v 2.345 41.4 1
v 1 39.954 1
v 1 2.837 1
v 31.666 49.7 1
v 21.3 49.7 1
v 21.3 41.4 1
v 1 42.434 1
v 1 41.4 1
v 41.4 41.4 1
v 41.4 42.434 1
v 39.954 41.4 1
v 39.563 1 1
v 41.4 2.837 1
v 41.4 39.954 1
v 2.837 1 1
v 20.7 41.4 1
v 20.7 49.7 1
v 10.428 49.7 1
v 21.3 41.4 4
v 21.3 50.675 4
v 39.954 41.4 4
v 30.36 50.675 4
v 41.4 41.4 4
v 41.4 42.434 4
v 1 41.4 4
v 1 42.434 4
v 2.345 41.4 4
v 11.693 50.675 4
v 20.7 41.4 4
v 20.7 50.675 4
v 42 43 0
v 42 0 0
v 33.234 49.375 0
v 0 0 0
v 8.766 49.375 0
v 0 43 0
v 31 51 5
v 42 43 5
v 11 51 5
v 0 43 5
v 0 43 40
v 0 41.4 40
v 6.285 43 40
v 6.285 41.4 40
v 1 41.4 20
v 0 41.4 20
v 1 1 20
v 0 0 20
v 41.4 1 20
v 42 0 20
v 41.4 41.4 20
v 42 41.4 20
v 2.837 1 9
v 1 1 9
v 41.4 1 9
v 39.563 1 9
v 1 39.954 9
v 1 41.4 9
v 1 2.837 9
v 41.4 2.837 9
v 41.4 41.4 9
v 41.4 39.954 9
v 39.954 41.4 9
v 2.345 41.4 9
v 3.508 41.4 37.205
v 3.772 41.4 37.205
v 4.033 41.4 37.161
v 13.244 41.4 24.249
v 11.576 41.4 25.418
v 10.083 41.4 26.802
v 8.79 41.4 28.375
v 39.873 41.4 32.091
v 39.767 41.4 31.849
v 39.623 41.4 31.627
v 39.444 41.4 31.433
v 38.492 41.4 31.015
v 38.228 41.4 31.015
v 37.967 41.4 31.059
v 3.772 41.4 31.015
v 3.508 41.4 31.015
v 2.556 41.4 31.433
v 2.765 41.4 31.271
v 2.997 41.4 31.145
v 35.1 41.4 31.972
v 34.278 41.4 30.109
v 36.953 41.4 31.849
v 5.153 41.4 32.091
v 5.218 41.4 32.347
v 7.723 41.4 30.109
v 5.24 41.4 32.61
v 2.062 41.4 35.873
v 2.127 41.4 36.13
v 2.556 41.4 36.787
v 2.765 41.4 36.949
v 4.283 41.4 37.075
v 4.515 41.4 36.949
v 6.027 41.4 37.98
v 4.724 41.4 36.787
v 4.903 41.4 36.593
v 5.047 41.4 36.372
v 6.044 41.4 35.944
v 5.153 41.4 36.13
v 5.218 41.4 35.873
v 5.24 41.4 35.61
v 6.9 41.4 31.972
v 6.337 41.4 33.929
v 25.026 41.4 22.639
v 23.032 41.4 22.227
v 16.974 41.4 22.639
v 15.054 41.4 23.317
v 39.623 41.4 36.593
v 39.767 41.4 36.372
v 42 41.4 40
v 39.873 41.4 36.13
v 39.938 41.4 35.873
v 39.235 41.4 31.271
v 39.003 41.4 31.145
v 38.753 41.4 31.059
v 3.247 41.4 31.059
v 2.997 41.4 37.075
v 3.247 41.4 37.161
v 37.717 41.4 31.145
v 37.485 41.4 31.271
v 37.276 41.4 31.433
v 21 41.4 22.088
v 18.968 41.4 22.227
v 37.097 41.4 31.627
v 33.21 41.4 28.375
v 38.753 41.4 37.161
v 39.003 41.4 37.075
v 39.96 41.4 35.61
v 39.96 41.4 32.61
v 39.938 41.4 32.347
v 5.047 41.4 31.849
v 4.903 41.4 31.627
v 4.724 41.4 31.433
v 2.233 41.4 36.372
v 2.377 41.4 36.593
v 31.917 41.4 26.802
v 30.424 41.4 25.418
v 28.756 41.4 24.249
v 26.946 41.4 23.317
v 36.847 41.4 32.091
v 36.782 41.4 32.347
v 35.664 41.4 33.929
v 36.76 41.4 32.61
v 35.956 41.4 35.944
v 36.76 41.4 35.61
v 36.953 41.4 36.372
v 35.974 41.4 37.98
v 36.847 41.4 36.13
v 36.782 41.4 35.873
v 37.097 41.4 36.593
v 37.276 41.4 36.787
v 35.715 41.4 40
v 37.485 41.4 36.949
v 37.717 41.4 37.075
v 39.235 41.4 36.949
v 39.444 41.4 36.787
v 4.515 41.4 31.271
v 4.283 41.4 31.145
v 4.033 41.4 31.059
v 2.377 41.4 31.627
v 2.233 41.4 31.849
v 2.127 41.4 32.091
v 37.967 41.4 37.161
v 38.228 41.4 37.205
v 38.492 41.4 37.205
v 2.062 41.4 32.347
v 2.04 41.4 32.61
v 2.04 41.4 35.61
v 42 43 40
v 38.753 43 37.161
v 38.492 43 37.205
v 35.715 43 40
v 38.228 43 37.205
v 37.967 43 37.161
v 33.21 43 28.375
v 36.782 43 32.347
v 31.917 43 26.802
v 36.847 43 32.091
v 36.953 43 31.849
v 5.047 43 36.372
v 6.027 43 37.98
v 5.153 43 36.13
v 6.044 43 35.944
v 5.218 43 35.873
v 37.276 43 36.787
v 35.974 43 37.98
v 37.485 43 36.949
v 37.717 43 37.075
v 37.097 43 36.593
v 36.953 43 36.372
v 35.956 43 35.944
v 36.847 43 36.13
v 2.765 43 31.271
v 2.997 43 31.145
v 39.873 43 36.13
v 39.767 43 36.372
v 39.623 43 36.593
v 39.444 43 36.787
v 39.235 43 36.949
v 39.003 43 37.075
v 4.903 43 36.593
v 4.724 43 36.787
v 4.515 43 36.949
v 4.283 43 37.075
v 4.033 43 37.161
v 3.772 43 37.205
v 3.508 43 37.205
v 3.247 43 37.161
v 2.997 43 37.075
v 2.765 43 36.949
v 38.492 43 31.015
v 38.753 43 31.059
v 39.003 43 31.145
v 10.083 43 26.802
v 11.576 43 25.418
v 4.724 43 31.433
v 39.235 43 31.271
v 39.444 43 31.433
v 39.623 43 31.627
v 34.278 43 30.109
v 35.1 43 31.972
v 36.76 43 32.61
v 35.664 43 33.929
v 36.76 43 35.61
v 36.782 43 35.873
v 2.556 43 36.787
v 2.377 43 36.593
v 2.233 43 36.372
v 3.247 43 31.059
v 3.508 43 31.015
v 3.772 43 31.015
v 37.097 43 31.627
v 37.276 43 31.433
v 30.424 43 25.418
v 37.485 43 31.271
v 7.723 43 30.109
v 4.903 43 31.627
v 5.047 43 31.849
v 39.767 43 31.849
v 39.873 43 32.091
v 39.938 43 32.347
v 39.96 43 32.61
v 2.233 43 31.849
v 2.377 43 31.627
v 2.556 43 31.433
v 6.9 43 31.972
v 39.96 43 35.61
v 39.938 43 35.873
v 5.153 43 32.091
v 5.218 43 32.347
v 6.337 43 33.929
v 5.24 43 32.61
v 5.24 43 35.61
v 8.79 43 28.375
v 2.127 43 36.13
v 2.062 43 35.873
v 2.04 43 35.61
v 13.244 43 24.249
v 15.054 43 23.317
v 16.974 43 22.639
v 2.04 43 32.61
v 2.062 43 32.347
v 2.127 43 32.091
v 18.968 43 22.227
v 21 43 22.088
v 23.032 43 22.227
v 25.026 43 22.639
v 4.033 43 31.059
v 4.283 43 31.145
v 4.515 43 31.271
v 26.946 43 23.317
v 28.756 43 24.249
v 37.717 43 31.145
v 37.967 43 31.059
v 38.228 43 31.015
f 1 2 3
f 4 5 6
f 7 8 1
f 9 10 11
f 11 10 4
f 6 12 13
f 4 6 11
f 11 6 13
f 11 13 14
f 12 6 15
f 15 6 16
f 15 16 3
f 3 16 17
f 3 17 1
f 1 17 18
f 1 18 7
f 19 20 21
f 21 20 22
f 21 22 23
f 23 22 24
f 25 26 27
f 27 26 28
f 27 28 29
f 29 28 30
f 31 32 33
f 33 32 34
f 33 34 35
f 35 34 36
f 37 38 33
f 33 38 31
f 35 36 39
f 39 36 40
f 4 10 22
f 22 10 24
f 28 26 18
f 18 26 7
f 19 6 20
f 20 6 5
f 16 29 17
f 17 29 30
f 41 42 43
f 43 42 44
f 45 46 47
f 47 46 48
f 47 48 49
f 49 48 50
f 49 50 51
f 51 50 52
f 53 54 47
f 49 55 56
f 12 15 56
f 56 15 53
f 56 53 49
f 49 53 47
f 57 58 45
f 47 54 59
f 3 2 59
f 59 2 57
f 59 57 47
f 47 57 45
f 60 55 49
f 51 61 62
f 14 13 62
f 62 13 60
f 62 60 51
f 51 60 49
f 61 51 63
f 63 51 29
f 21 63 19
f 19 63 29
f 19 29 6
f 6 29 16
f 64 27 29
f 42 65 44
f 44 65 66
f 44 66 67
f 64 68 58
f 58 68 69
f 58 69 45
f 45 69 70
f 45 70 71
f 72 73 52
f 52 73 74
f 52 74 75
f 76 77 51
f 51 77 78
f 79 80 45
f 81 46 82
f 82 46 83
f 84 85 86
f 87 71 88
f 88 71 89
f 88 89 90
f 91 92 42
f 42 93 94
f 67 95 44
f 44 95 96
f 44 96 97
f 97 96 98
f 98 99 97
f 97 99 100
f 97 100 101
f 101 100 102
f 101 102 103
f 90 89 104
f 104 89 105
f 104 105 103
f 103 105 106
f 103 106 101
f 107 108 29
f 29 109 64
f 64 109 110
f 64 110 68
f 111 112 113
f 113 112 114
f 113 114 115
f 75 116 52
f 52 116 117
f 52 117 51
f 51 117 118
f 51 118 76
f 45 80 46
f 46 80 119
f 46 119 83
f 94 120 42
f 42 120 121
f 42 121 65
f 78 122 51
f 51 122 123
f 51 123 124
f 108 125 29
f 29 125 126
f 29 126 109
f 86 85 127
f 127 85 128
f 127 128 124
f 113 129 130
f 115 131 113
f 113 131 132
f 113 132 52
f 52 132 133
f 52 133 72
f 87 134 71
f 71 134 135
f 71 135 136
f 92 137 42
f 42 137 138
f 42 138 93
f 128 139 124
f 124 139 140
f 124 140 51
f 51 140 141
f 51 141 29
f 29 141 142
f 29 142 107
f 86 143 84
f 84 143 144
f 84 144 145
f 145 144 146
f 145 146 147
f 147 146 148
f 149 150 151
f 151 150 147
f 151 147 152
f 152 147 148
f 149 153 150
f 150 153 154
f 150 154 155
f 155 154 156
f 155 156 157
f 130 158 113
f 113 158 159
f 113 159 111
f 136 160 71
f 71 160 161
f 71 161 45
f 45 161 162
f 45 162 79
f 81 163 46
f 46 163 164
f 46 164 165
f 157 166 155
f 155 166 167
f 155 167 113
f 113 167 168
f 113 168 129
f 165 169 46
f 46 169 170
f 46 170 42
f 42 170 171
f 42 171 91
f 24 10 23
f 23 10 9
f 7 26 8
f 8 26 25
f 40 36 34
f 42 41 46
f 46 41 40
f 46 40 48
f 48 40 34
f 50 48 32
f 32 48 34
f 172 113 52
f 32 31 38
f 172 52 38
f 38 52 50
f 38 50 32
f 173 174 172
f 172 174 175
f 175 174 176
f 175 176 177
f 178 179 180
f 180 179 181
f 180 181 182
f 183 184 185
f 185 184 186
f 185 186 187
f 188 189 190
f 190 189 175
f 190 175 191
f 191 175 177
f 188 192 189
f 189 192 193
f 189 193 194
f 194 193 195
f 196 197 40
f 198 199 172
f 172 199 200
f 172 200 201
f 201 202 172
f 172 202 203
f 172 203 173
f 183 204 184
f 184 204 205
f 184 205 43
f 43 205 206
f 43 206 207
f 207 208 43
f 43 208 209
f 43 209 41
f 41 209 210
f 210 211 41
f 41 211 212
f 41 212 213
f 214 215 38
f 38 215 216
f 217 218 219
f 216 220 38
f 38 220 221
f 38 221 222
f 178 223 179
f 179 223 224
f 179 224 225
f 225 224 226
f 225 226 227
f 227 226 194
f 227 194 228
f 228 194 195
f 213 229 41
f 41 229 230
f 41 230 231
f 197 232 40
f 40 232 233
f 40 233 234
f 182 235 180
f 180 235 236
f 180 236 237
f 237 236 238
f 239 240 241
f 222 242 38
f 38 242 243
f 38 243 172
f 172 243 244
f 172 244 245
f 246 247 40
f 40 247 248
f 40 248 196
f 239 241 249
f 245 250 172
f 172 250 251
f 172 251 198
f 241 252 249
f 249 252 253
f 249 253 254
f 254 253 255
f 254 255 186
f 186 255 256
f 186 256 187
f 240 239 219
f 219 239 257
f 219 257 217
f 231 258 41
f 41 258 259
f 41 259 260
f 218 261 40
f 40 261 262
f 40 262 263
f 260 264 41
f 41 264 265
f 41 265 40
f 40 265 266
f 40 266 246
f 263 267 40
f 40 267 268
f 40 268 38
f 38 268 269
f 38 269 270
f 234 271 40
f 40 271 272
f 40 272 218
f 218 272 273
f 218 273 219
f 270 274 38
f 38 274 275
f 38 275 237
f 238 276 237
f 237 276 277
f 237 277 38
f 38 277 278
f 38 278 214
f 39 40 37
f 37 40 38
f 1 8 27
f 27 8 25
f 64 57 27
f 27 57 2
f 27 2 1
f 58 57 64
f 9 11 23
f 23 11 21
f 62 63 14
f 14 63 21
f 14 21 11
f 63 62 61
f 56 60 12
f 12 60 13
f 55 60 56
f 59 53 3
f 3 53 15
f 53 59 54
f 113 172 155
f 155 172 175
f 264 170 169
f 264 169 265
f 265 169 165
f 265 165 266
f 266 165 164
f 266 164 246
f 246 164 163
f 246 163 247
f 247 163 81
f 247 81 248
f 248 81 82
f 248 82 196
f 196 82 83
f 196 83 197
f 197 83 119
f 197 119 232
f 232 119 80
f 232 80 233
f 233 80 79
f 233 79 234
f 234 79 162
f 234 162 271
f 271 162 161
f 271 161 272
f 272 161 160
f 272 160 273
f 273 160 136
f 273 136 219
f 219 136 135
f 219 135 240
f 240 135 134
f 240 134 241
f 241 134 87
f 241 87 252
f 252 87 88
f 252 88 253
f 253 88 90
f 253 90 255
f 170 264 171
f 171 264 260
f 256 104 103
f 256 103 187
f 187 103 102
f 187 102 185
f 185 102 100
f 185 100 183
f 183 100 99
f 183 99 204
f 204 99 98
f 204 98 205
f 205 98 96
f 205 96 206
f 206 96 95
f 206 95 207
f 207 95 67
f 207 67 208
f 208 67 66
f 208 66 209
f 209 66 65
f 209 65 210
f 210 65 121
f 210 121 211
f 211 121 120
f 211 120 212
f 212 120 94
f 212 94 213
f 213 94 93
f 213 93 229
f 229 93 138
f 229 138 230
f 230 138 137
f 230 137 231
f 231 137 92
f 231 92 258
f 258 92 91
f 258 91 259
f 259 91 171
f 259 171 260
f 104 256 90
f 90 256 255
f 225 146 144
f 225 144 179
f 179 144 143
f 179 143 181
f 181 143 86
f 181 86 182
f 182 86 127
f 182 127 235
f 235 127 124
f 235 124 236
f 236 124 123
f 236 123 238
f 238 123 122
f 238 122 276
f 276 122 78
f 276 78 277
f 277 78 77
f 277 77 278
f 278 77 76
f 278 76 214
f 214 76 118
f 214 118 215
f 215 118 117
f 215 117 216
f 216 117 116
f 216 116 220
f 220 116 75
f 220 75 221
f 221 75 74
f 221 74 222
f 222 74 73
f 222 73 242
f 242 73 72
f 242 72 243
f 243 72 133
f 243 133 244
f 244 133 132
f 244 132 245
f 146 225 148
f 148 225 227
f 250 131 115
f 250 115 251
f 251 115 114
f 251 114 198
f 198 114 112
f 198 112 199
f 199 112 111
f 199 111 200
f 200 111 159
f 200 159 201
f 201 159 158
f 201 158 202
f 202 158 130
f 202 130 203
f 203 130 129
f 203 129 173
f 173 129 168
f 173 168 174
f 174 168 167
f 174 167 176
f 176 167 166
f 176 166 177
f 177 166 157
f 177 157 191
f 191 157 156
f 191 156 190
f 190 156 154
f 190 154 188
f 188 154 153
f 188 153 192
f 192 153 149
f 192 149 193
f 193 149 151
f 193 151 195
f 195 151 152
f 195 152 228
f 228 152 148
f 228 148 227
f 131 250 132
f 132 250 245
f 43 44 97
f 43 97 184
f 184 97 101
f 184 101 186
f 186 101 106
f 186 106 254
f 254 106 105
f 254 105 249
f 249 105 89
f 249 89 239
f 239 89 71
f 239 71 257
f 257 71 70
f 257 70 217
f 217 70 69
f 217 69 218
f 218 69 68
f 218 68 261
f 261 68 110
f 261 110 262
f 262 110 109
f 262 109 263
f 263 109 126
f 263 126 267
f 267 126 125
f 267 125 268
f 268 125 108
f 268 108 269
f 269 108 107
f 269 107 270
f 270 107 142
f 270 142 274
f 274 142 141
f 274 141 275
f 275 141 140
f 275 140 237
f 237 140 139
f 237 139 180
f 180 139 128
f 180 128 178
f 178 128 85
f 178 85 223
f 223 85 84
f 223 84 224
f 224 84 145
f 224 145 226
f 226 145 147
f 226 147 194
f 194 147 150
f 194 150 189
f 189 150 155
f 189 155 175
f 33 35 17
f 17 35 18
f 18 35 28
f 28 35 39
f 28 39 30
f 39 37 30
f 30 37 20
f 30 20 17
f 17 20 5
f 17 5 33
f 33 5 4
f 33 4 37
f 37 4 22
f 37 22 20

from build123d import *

# Parameters (mm, degrees)
SKETCH_1_W               = 42
SKETCH_1_H               = 43
EXTRUDE_1_DEPTH          = 20
SKETCH_2_W               = 40.4
SKETCH_2_H               = 40.4
CUT_EXTRUDE_1_DEPTH      = 19
EXTRUDE_2_DEPTH          = 5
CUT_EXTRUDE_2_DEPTH      = 3
EXTRUDE_3_DEPTH          = 8
SKETCH_7_W               = 42
SKETCH_7_H               = 1.6
EXTRUDE_4_DEPTH          = 20
SKETCH_8_R               = 15
CUT_EXTRUDE_3_DEPTH      = 20
SKETCH_9_W               = 0.6
SKETCH_9_H               = 9.6
EXTRUDE_5_DEPTH          = 3
CUT_EXTRUDE_4_DEPTH      = 20
CUT_EXTRUDE_4_DEPTH_BACK = 20


with BuildPart() as part:
    # 草图1 → 凸台-拉伸1 (new body)
    with BuildSketch(Plane.XY):
        with Locations((21, 21.5)):
            Rectangle(SKETCH_1_W, SKETCH_1_H)
    extrude(amount=EXTRUDE_1_DEPTH)

    # 草图2 → 切除-拉伸1 (cut)
    with BuildSketch(Plane.XY.offset(20)):
        with Locations((21.2, 21.2)):
            Rectangle(SKETCH_2_W, SKETCH_2_H)
    extrude(amount=-CUT_EXTRUDE_1_DEPTH, mode=Mode.SUBTRACT)

    # 草图3 → 凸台-拉伸2 (add)
    with BuildSketch(Plane(origin=(0, 0, 0), x_dir=(-1, 0, 0), z_dir=(0, 0, -1))):
        Polygon((-42, 43), (0, 43), (-11, 51), (-31, 51), align=None)
    extrude(amount=-EXTRUDE_2_DEPTH)

    # 草图5 → 切除-拉伸2 (cut)
    with BuildSketch(Plane.XY.offset(1)):
        Polygon((1, 41.4), (1, 42.434468933), (13.156473194, 51.802822617), (28.849580276, 51.802822617), (41.4, 42.434468933), (41.4, 41.4), align=None)
    extrude(amount=CUT_EXTRUDE_2_DEPTH, mode=Mode.SUBTRACT)

    # 草图6 → 凸台-拉伸3 (add)
    with BuildSketch(Plane.XY.offset(1)):
        Polygon((1, 41.4), (1, 39.954103811), (2.344864369, 41.4), align=None)
        Polygon((41.4, 41.4), (41.4, 39.954103811), (39.954103811, 41.4), align=None)
        Polygon((41.4, 1), (41.4, 2.836916903), (39.563083097, 1), align=None)
        Polygon((1, 1), (1, 2.836916903), (2.836916903, 1), align=None)
    extrude(amount=EXTRUDE_3_DEPTH)

    # 草图7 → 凸台-拉伸4 (add)
    with BuildSketch(Plane.XY.offset(20)):
        with Locations((21, 42.2)):
            Rectangle(SKETCH_7_W, SKETCH_7_H)
    extrude(amount=EXTRUDE_4_DEPTH)

    # 草图8 → 切除-拉伸3 (cut)
    with BuildSketch(Plane.XZ.offset(-41.4)):
        with Locations((21, 37.088393363)):
            Circle(SKETCH_8_R)
        with BuildLine():
            Line((2.04, 32.61), (2.04, 35.61))
            ThreePointArc((2.04, 35.61), (3.64, 37.21), (5.24, 35.61))
            Line((5.24, 35.61), (5.24, 32.61))
            ThreePointArc((5.24, 32.61), (3.64, 31.01), (2.04, 32.61))
        make_face()
        with BuildLine():
            Line((39.96, 32.61), (39.96, 35.61))
            ThreePointArc((39.96, 35.61), (38.36, 37.21), (36.76, 35.61))
            Line((36.76, 35.61), (36.76, 32.61))
            ThreePointArc((36.76, 32.61), (38.36, 31.01), (39.96, 32.61))
        make_face()
    extrude(amount=-CUT_EXTRUDE_3_DEPTH, mode=Mode.SUBTRACT)

    # 草图9 → 凸台-拉伸5 (add)
    with BuildSketch(Plane.XY.offset(1)):
        with Locations((21, 46.2)):
            Rectangle(SKETCH_9_W, SKETCH_9_H)
    extrude(amount=EXTRUDE_5_DEPTH)

    # 草图10 → 切除-拉伸4 (cut, two sides: drawn at the far end of the back side and taken through both)
    with BuildSketch(Plane.ZY.offset(-20.7).offset(-CUT_EXTRUDE_4_DEPTH_BACK)):
        Polygon((5, 51), (-3.034223026, 48.389522695), (-3.034223026, 51), align=None)
    extrude(amount=CUT_EXTRUDE_4_DEPTH + CUT_EXTRUDE_4_DEPTH_BACK, mode=Mode.SUBTRACT)


solid = part.part
